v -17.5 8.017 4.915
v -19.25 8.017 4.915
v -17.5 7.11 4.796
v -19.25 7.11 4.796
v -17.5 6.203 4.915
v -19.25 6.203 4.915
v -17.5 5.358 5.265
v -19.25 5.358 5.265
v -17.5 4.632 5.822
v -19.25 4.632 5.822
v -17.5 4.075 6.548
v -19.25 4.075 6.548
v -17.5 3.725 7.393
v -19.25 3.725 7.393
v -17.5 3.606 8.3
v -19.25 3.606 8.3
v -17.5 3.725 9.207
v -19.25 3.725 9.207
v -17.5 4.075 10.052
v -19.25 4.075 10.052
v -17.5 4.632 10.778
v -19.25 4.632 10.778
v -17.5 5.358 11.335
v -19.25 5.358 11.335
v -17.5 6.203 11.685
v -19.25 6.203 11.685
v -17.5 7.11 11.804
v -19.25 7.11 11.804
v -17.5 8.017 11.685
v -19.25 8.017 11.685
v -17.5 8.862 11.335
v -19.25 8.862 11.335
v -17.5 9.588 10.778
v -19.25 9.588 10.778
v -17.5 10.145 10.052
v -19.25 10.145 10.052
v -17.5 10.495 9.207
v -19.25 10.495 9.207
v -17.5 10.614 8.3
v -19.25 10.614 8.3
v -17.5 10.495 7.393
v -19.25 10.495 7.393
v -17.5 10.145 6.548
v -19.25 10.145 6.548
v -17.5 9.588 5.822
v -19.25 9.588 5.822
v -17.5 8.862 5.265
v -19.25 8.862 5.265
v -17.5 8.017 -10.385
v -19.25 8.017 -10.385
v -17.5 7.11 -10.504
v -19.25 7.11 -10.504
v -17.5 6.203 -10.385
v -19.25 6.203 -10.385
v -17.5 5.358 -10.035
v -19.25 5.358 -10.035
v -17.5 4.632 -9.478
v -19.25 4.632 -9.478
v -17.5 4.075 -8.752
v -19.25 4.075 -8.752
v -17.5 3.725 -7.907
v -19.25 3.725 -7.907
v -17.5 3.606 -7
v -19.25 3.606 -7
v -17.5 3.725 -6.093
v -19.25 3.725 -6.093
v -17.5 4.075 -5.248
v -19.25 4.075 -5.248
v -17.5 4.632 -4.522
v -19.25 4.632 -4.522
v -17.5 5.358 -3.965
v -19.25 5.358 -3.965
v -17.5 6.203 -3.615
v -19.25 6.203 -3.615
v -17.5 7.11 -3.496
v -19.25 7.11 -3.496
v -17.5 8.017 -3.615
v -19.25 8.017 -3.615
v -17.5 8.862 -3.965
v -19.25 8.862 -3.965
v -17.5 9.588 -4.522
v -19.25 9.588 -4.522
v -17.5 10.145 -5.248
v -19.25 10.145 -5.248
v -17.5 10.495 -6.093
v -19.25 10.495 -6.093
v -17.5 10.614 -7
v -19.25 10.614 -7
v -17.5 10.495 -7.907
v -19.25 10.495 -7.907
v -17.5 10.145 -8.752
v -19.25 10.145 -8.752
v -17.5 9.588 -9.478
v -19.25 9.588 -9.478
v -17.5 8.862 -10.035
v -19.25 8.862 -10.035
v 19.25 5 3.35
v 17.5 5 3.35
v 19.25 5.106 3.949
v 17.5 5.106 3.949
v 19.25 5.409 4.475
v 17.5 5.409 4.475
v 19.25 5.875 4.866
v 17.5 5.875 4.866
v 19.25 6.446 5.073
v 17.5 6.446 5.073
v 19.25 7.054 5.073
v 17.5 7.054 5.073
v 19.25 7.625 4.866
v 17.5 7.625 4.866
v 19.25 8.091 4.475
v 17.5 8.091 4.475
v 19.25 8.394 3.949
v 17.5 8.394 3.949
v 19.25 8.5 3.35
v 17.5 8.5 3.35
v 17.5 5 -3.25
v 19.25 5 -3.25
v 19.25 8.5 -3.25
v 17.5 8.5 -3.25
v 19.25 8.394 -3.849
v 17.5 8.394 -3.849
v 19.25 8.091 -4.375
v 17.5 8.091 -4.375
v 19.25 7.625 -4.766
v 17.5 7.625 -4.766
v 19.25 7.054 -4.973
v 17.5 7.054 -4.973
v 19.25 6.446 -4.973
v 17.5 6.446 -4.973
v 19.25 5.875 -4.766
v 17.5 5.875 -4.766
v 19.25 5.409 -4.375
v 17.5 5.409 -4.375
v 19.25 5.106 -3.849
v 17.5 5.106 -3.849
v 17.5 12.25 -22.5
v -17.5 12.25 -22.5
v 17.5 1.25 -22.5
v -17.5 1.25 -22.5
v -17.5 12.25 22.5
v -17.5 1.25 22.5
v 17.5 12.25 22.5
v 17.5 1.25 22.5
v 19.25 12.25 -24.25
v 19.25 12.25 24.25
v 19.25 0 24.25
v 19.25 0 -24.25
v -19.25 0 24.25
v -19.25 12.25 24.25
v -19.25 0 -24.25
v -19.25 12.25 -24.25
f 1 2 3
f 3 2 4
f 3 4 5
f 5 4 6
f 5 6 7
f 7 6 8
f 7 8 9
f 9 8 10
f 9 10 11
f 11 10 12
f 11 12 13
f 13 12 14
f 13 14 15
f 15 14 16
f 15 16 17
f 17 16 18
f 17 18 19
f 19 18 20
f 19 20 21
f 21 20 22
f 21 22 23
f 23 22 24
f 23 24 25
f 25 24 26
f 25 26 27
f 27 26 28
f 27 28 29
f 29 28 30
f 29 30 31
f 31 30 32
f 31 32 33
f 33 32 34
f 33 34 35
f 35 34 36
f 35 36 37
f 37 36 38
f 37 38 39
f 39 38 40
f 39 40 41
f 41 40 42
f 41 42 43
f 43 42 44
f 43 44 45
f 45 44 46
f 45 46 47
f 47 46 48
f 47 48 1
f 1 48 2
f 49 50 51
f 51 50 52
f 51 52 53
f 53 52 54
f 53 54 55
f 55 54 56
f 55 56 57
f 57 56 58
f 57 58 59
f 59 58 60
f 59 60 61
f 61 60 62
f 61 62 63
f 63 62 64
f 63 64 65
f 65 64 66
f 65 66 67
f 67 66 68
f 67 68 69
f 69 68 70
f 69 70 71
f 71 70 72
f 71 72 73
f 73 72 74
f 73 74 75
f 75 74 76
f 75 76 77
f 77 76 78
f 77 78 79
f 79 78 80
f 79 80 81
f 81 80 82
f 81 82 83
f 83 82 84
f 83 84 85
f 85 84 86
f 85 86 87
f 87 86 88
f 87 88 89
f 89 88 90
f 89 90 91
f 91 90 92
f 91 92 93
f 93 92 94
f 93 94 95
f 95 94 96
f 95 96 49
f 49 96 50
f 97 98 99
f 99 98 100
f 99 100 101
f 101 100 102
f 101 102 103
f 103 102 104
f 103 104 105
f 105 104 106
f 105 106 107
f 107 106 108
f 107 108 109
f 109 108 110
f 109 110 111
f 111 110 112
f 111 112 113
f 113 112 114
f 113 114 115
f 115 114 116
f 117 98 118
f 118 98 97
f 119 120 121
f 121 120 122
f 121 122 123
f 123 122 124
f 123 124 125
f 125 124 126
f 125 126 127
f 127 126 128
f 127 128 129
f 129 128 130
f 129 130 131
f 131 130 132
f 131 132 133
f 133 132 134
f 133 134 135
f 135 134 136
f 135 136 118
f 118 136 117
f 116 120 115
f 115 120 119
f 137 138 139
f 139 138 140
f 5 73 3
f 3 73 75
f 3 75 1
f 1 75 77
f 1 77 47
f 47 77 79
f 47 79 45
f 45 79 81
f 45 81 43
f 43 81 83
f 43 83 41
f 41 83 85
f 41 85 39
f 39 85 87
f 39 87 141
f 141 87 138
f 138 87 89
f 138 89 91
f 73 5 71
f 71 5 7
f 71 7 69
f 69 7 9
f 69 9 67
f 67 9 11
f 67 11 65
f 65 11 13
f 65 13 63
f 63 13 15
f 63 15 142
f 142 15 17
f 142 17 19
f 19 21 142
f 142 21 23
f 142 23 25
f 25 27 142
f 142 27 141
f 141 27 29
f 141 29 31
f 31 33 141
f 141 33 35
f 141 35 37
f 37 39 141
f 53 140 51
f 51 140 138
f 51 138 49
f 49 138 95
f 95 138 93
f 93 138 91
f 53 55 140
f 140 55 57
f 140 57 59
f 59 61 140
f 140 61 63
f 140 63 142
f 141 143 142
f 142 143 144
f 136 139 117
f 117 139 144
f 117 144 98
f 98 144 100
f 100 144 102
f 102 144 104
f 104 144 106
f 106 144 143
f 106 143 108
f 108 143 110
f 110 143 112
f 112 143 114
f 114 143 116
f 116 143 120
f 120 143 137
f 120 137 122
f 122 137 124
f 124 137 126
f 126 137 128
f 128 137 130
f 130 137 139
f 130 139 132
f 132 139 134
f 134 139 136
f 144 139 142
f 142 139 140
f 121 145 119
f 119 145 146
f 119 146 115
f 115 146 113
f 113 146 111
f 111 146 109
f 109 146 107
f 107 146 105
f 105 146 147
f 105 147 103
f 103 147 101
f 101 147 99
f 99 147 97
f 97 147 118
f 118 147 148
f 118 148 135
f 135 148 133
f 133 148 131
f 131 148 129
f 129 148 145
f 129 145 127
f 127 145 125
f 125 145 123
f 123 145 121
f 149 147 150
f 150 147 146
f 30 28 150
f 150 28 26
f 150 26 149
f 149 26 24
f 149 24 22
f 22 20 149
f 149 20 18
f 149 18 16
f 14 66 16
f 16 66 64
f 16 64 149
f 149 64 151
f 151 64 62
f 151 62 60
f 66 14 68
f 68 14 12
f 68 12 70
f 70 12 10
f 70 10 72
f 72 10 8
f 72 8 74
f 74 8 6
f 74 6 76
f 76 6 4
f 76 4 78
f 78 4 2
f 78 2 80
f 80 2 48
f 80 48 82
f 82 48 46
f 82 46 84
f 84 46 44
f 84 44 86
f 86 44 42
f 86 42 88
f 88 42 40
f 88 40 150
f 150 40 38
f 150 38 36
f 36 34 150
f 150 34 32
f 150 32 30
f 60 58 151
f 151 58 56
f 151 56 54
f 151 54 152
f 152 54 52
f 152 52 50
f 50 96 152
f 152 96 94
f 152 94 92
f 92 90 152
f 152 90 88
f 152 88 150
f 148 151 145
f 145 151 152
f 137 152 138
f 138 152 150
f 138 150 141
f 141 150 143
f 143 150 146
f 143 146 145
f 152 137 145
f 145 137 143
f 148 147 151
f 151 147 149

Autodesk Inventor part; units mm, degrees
ref_plane "YZ Plane" through (0, 0, 0) normal (1, 0, 0) x (0, 1, 0)
ref_plane "XZ Plane" through (0, 0, 0) normal (0, 1, 0) x (-1, 0, 0)
ref_plane "XY Plane" through (0, 0, 0) normal (0, 0, 1) x (1, 0, 0)
sketch "Sketch1" plane through (0, 0, 0) normal (0, 1, 0) x (-1, 0, 0)
  line L0 (-19.25, 24.25) -> (19.25, 24.25)
  line L1 (19.25, 24.25) -> (19.25, -24.25)
  line L2 (19.25, -24.25) -> (-19.25, -24.25)
  line L3 (-19.25, -24.25) -> (-19.25, 24.25)
  line L4 (-19.25, 24.25) -> (19.25, -24.25) construction
  line L5 (19.25, 24.25) -> (-19.25, -24.25) construction
  point P0 (0, 0)
  dimension "d0" = 38.5
  dimension "d1" = 48.5
extrude "Extrusion1" add sketch "Sketch1" along normal blind 12.25
sketch "Sketch2" plane through (0, 12.25, 0) normal (0, 1, 0) x (1, 0, 0)
  line L0 (-17.5, -22.5) -> (17.5, -22.5)
  line L1 (17.5, -22.5) -> (17.5, 22.5)
  line L2 (17.5, 22.5) -> (-17.5, 22.5)
  line L3 (-17.5, 22.5) -> (-17.5, -22.5)
  line L4 (-17.5, -22.5) -> (17.5, 22.5) construction
  line L5 (17.5, -22.5) -> (-17.5, 22.5) construction
  point P0 (0, 0)
  dimension "d4" = 35
  dimension "d5" = 45
extrude "Extrusion2" cut sketch "Sketch2" against normal blind 11
sketch "Sketch3" plane through (19.25, 0, 24.25) normal (1, 0, 0) x (0, 0, -1)
  line L0 (46.75, 1.25) -> (1.75, 1.25) projected
  line L1 (46.75, 12.25) -> (46.75, 1.25) projected
  line L2 (1.75, 12.25) -> (1.75, 1.25) projected
  line L3 (1.75, 8.5) -> (19.15, 8.5)
  line L4 (46.75, 8.5) -> (29.25, 8.5)
  line L5 (19.15, 1.25) -> (19.15, 5)
  line L6 (19.15, 5) -> (29.25, 5)
  line L7 (29.25, 5) -> (29.25, 8.5)
  line L8 (29.25, 8.5) -> (19.15, 8.5)
  line L9 (19.15, 8.5) -> (19.15, 5)
  circle A0 centre (20.9, 6.75) radius 1.75
  circle A1 centre (27.5, 6.75) radius 1.75
  point P0 (24.25, 0)
  point P1 (20.9, 5)
  point P2 (27.5, 5)
  point P3 (27.5, 8.5)
  point P4 (20.9, 8.5)
  dimension "d8" = 17.4
  dimension "d9" = 17.5
  dimension "d10" = 3.75
  dimension "d11" = 3.75
  dimension "d12" = 3.75
  dimension "d22" = 0
extrude "Extrusion3" cut sketch "Sketch3" against normal blind 11 contours A0 L8 A1 L6 | A0 | A1
sketch "Sketch4" plane through (-19.25, 0, -24.25) normal (-1, 0, 0) x (0, 0, 1)
  line L0 (46.75, 1.25) -> (1.75, 1.25) projected
  line L1 (1.75, 12.25) -> (1.75, 1.25) projected
  line L2 (46.75, 12.25) -> (46.75, 1.25) projected
  line L3 (24.25, 1.25) -> (24.25, 6.36)
  line L4 (1.75, 7.11) -> (17.25, 7.11)
  line L5 (46.75, 7.11) -> (32.55, 7.11)
  circle A0 centre (17.25, 7.11) radius 3.504
  circle A1 centre (32.55, 7.11) radius 3.504
  point P0 (24.25, 0)
  dimension "d23" = 5.11
  dimension "d24" = 15.5
  dimension "d25" = 14.2
extrude "Extrusion4" cut sketch "Sketch4" against normal blind 11
